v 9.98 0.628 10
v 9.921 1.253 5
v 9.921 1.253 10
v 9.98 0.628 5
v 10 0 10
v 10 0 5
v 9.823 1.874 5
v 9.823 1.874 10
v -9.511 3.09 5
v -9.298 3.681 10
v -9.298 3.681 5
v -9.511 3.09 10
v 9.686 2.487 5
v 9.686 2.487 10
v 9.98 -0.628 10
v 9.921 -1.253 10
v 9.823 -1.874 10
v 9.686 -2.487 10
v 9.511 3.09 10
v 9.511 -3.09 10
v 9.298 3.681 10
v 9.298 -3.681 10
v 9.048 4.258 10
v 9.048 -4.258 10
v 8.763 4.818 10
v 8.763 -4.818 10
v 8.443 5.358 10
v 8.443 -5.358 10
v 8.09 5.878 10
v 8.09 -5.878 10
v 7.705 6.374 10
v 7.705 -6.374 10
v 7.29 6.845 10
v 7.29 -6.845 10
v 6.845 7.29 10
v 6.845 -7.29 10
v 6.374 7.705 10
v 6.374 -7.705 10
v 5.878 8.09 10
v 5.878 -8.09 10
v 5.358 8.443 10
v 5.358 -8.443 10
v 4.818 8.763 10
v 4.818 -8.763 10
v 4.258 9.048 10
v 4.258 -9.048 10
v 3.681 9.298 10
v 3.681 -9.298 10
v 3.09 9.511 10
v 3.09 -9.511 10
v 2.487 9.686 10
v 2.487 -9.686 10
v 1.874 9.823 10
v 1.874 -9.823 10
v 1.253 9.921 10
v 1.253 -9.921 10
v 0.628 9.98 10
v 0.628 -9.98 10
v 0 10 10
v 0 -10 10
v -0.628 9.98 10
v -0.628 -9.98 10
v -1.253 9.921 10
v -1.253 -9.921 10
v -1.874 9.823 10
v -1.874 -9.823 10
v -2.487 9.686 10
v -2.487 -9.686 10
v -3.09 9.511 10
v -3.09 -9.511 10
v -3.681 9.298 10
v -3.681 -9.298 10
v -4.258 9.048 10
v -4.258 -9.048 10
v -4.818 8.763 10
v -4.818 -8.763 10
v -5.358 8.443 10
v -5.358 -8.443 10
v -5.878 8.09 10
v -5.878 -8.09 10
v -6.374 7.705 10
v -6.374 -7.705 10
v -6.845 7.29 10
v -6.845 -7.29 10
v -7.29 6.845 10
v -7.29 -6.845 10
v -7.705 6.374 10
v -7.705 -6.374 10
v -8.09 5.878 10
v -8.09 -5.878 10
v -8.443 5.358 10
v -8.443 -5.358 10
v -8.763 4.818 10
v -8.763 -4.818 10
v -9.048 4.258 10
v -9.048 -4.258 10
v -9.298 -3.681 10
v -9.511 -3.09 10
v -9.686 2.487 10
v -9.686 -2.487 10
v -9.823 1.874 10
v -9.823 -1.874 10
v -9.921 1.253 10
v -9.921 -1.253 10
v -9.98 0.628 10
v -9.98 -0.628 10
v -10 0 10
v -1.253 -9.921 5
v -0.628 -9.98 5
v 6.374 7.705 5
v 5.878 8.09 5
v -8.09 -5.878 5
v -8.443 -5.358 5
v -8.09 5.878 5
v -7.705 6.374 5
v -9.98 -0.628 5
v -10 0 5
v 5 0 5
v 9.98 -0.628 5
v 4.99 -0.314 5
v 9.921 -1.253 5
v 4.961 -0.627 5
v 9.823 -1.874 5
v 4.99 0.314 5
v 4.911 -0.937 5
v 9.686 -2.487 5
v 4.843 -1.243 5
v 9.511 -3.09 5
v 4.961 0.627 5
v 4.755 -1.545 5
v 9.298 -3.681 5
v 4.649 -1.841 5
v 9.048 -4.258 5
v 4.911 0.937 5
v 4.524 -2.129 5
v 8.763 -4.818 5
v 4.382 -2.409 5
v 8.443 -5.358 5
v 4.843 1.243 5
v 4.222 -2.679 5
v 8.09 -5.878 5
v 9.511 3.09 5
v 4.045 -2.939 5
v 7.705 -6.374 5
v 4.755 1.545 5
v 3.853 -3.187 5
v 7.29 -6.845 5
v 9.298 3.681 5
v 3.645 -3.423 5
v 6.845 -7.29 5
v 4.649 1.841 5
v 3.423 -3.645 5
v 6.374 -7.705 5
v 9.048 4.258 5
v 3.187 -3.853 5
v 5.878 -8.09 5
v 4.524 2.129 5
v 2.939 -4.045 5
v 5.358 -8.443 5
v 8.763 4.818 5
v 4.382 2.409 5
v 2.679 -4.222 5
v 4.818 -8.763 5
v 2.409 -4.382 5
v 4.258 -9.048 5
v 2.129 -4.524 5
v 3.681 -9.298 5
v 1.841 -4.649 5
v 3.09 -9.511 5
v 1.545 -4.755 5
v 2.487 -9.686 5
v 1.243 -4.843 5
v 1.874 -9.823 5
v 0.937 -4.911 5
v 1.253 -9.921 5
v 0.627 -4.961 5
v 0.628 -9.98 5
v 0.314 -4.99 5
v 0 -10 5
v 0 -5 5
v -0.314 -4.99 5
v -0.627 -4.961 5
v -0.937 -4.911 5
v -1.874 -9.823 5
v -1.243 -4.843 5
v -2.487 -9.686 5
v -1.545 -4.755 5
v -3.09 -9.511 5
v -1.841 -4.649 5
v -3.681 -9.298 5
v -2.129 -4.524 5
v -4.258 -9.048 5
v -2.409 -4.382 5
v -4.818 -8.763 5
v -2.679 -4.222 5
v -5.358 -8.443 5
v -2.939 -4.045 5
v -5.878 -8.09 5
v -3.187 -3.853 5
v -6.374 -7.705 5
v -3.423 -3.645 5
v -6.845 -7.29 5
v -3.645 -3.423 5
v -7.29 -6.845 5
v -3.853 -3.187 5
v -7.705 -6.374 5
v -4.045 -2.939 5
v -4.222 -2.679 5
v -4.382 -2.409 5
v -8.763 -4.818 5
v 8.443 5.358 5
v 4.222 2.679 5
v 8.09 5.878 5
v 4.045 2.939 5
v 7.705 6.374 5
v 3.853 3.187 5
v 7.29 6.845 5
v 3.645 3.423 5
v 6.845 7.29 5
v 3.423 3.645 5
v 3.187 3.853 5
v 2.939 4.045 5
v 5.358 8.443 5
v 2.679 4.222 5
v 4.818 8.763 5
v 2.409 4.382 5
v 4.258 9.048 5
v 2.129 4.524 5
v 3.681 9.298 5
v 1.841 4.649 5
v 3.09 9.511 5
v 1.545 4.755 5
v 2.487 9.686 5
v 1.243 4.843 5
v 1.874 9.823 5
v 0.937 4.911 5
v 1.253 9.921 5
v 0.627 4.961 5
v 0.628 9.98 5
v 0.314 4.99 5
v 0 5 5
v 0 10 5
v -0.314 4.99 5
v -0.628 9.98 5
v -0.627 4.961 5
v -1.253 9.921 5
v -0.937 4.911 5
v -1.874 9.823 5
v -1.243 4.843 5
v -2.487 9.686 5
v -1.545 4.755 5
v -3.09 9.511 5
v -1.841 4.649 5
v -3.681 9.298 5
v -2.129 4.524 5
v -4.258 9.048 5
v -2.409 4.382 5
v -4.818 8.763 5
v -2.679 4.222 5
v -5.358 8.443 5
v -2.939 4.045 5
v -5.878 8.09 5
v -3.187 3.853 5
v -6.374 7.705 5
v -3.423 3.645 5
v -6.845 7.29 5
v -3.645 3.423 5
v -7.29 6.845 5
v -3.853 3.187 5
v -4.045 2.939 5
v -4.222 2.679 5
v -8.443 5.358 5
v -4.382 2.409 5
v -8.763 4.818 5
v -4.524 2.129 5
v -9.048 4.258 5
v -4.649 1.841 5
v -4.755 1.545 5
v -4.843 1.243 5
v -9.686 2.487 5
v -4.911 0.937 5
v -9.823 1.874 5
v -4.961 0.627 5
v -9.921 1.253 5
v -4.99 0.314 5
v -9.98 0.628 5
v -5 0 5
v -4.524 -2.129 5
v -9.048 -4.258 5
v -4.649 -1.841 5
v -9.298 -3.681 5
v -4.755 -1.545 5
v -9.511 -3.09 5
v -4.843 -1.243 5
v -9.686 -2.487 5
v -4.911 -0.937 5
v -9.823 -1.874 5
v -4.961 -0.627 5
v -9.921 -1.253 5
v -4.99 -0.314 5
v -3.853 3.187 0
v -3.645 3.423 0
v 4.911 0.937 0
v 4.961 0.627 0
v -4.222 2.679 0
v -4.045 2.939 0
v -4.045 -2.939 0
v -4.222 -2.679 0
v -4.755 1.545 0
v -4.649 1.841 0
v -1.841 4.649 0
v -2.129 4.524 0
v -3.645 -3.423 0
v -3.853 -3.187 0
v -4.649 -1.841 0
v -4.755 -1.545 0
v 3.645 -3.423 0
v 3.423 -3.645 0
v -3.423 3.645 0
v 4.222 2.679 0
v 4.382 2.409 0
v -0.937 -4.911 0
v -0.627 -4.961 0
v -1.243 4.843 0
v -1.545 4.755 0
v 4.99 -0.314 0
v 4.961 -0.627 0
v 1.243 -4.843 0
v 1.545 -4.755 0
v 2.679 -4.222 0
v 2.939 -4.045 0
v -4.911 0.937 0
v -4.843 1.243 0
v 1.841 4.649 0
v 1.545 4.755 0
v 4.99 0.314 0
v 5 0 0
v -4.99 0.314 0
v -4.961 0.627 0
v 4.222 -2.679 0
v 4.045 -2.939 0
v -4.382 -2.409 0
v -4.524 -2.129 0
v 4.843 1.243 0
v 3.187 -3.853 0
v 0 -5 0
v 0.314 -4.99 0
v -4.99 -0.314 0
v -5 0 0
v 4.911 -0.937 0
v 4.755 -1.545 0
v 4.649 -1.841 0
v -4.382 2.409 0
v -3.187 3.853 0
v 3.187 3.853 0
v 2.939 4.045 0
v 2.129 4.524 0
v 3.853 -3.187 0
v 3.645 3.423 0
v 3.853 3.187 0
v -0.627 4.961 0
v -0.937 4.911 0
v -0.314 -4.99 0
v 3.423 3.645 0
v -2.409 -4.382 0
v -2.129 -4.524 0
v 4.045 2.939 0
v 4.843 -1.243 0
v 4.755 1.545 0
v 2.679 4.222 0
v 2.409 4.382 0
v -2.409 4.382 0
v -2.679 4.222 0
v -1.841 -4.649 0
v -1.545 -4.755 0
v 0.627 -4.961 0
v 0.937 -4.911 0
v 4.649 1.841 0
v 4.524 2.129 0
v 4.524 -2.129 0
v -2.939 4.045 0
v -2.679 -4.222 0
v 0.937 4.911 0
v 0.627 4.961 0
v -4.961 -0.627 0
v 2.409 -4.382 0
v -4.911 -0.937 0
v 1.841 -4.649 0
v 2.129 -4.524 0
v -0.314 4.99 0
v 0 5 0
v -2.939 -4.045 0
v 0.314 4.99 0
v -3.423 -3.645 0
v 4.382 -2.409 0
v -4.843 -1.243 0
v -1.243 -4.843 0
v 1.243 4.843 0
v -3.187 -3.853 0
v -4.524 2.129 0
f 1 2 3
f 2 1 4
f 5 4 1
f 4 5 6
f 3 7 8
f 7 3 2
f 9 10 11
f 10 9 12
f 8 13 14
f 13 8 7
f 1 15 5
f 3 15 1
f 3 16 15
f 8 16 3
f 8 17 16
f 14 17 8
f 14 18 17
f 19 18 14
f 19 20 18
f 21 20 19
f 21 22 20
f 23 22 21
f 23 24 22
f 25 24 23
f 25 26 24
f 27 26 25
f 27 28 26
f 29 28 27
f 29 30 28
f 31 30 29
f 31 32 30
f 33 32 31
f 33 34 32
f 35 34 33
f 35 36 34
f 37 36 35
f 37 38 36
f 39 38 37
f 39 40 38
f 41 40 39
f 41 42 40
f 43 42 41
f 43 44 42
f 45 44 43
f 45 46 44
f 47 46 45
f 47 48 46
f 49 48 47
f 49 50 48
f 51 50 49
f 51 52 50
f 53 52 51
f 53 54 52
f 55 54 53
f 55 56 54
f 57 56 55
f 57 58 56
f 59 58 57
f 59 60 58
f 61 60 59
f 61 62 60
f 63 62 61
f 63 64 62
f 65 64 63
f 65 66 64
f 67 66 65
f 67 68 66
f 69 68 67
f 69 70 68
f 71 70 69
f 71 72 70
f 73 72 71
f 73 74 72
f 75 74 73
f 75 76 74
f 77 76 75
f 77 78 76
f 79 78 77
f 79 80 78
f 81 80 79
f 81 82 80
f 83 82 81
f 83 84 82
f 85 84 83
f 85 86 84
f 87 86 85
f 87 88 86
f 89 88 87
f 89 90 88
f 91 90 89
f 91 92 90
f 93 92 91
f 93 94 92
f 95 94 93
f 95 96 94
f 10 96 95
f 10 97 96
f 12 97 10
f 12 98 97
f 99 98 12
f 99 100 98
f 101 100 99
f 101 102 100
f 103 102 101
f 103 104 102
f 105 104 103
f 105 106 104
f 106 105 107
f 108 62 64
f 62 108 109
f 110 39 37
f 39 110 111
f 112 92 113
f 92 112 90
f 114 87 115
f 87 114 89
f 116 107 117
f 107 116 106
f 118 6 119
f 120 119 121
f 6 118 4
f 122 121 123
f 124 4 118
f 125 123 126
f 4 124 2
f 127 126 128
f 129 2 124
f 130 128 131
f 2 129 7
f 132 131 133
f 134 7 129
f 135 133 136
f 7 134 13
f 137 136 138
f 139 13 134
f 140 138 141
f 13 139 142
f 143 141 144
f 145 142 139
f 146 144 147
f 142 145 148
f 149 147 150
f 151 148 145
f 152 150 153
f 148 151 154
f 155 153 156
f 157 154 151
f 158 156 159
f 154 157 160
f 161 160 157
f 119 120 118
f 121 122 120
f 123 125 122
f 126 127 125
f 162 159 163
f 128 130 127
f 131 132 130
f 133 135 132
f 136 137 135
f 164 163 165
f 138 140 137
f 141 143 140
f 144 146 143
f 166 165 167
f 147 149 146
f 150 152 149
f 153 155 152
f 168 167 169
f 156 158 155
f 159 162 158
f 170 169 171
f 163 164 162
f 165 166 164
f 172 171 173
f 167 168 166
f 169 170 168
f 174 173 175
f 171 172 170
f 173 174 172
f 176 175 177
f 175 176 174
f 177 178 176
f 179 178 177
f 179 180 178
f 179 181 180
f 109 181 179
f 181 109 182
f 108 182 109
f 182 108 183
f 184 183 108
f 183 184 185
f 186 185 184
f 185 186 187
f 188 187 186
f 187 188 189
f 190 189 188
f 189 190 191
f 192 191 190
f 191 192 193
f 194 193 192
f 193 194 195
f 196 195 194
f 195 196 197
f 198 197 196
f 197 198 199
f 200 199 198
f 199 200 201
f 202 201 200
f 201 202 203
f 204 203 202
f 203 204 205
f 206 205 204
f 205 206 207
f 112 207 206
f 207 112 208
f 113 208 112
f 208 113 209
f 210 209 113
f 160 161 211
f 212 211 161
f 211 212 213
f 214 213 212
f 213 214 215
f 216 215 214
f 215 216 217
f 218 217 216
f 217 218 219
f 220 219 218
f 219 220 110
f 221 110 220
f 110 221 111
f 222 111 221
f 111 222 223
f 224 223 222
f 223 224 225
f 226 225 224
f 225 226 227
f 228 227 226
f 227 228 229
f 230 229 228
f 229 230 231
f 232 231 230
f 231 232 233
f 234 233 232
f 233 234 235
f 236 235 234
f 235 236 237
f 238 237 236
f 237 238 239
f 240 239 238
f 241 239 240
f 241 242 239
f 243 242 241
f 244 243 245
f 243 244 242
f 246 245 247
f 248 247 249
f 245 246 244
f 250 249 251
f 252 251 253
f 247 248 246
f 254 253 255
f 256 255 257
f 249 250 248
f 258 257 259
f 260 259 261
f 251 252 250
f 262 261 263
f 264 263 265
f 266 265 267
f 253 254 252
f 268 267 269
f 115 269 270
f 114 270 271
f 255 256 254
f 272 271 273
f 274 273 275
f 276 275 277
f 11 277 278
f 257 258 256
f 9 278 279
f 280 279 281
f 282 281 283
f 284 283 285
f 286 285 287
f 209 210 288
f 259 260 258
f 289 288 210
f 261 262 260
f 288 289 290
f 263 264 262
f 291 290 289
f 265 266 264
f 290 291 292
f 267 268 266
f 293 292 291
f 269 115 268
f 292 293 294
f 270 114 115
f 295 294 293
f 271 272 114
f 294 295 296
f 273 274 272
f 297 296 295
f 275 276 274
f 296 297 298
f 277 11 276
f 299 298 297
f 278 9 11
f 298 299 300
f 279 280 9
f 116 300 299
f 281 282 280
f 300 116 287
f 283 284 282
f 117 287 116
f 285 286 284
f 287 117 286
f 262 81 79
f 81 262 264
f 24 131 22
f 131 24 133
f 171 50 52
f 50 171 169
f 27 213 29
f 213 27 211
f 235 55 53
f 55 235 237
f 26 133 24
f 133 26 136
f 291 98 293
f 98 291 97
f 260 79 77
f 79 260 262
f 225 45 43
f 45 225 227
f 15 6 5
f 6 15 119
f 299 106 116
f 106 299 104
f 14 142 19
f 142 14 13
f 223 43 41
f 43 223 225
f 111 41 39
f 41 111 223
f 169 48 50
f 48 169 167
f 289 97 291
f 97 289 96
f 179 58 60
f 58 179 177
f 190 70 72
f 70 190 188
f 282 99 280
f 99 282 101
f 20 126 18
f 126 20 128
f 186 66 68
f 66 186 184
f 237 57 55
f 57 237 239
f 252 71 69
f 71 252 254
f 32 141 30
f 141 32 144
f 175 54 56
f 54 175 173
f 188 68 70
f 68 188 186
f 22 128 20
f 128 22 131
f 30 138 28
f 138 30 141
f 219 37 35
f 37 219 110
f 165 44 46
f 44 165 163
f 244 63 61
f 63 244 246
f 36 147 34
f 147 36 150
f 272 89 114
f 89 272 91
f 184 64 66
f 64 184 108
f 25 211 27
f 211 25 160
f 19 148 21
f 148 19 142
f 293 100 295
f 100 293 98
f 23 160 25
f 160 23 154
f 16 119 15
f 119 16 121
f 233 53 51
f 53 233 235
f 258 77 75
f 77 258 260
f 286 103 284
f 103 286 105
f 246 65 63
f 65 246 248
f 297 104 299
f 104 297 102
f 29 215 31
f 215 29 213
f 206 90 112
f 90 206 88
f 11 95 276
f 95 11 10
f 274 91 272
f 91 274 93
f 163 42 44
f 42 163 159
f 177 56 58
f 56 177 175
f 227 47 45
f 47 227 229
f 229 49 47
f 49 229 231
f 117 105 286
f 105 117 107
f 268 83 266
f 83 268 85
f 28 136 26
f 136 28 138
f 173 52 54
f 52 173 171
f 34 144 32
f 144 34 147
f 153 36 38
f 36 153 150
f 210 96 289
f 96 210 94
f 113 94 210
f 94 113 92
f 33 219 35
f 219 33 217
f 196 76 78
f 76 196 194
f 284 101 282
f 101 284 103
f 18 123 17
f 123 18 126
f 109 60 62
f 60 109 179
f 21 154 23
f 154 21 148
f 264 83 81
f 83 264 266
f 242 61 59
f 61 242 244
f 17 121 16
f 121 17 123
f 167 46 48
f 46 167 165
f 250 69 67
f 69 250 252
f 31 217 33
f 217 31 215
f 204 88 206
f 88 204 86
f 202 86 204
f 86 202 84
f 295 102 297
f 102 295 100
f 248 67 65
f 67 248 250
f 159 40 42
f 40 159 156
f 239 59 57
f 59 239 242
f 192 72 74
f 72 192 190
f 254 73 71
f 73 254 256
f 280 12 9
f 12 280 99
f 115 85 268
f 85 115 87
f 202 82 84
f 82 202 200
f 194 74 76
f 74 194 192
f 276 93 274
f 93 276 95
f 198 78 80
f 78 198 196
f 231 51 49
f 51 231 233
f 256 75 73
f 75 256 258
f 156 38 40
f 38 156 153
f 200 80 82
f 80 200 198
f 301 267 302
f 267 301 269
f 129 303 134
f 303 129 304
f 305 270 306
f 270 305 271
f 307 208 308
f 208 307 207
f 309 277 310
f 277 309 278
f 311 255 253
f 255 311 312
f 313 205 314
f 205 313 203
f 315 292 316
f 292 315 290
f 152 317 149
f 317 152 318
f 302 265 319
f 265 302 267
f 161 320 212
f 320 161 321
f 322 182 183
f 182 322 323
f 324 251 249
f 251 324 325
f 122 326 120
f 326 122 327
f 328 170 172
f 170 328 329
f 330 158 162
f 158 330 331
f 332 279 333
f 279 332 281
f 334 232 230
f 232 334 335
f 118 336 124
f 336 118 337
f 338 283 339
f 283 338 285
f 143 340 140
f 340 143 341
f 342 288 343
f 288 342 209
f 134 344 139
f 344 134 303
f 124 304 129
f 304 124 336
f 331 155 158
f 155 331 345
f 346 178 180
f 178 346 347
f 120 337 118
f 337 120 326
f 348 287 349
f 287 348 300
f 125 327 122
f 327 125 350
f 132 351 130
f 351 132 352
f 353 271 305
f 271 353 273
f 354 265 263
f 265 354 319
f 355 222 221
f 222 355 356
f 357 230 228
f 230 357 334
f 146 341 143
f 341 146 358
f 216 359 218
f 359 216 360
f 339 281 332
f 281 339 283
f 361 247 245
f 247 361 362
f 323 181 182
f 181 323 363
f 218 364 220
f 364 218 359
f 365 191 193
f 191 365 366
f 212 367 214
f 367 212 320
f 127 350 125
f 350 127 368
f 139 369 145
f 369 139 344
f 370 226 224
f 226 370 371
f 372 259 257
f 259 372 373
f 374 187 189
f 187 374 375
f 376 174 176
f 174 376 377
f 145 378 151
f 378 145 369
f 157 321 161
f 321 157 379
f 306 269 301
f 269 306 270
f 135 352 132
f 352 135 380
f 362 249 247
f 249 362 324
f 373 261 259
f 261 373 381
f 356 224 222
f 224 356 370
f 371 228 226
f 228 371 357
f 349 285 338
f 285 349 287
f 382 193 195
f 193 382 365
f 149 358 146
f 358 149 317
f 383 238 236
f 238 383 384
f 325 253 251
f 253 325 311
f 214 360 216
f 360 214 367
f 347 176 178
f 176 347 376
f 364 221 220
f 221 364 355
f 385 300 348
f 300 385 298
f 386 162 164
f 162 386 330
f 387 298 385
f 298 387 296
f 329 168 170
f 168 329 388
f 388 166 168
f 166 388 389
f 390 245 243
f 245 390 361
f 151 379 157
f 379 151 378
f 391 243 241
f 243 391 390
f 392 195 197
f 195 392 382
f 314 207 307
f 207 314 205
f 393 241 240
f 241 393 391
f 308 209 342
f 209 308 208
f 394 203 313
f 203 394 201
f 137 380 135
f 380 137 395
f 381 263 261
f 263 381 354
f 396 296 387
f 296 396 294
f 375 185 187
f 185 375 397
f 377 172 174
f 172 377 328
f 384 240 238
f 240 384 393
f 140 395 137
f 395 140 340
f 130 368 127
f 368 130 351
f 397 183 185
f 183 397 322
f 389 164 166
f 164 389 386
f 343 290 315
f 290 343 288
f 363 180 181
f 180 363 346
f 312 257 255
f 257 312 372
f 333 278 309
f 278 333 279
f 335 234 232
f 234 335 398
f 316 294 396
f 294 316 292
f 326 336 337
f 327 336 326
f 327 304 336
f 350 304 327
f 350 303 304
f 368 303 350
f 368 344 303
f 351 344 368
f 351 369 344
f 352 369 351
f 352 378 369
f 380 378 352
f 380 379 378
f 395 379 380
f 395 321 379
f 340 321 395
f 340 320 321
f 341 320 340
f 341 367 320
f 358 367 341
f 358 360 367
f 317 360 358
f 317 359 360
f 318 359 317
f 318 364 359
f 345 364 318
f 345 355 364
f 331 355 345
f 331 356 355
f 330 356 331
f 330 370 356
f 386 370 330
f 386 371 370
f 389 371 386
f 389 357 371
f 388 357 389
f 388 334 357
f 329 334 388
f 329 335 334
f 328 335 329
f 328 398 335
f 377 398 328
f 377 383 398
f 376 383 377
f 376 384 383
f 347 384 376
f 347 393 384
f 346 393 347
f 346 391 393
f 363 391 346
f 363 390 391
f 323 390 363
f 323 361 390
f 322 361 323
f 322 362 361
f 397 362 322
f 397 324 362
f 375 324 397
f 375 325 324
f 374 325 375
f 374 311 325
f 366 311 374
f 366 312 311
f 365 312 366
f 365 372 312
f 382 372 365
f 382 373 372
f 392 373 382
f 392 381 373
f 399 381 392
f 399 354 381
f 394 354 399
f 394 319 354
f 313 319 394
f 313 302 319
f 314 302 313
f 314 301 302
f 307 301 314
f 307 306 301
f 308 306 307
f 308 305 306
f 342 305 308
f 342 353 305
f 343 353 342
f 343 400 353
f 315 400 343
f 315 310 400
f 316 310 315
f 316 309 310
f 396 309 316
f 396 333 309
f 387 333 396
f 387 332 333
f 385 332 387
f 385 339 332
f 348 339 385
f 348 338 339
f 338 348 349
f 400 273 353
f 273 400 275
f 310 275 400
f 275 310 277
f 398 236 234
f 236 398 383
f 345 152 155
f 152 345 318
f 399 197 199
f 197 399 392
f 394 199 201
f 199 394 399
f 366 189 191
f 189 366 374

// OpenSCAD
union() {
   $fn = 100;
   translate([0,0,5]) cylinder(d=20,h=5);
   cylinder(d=10,h=5);
}
